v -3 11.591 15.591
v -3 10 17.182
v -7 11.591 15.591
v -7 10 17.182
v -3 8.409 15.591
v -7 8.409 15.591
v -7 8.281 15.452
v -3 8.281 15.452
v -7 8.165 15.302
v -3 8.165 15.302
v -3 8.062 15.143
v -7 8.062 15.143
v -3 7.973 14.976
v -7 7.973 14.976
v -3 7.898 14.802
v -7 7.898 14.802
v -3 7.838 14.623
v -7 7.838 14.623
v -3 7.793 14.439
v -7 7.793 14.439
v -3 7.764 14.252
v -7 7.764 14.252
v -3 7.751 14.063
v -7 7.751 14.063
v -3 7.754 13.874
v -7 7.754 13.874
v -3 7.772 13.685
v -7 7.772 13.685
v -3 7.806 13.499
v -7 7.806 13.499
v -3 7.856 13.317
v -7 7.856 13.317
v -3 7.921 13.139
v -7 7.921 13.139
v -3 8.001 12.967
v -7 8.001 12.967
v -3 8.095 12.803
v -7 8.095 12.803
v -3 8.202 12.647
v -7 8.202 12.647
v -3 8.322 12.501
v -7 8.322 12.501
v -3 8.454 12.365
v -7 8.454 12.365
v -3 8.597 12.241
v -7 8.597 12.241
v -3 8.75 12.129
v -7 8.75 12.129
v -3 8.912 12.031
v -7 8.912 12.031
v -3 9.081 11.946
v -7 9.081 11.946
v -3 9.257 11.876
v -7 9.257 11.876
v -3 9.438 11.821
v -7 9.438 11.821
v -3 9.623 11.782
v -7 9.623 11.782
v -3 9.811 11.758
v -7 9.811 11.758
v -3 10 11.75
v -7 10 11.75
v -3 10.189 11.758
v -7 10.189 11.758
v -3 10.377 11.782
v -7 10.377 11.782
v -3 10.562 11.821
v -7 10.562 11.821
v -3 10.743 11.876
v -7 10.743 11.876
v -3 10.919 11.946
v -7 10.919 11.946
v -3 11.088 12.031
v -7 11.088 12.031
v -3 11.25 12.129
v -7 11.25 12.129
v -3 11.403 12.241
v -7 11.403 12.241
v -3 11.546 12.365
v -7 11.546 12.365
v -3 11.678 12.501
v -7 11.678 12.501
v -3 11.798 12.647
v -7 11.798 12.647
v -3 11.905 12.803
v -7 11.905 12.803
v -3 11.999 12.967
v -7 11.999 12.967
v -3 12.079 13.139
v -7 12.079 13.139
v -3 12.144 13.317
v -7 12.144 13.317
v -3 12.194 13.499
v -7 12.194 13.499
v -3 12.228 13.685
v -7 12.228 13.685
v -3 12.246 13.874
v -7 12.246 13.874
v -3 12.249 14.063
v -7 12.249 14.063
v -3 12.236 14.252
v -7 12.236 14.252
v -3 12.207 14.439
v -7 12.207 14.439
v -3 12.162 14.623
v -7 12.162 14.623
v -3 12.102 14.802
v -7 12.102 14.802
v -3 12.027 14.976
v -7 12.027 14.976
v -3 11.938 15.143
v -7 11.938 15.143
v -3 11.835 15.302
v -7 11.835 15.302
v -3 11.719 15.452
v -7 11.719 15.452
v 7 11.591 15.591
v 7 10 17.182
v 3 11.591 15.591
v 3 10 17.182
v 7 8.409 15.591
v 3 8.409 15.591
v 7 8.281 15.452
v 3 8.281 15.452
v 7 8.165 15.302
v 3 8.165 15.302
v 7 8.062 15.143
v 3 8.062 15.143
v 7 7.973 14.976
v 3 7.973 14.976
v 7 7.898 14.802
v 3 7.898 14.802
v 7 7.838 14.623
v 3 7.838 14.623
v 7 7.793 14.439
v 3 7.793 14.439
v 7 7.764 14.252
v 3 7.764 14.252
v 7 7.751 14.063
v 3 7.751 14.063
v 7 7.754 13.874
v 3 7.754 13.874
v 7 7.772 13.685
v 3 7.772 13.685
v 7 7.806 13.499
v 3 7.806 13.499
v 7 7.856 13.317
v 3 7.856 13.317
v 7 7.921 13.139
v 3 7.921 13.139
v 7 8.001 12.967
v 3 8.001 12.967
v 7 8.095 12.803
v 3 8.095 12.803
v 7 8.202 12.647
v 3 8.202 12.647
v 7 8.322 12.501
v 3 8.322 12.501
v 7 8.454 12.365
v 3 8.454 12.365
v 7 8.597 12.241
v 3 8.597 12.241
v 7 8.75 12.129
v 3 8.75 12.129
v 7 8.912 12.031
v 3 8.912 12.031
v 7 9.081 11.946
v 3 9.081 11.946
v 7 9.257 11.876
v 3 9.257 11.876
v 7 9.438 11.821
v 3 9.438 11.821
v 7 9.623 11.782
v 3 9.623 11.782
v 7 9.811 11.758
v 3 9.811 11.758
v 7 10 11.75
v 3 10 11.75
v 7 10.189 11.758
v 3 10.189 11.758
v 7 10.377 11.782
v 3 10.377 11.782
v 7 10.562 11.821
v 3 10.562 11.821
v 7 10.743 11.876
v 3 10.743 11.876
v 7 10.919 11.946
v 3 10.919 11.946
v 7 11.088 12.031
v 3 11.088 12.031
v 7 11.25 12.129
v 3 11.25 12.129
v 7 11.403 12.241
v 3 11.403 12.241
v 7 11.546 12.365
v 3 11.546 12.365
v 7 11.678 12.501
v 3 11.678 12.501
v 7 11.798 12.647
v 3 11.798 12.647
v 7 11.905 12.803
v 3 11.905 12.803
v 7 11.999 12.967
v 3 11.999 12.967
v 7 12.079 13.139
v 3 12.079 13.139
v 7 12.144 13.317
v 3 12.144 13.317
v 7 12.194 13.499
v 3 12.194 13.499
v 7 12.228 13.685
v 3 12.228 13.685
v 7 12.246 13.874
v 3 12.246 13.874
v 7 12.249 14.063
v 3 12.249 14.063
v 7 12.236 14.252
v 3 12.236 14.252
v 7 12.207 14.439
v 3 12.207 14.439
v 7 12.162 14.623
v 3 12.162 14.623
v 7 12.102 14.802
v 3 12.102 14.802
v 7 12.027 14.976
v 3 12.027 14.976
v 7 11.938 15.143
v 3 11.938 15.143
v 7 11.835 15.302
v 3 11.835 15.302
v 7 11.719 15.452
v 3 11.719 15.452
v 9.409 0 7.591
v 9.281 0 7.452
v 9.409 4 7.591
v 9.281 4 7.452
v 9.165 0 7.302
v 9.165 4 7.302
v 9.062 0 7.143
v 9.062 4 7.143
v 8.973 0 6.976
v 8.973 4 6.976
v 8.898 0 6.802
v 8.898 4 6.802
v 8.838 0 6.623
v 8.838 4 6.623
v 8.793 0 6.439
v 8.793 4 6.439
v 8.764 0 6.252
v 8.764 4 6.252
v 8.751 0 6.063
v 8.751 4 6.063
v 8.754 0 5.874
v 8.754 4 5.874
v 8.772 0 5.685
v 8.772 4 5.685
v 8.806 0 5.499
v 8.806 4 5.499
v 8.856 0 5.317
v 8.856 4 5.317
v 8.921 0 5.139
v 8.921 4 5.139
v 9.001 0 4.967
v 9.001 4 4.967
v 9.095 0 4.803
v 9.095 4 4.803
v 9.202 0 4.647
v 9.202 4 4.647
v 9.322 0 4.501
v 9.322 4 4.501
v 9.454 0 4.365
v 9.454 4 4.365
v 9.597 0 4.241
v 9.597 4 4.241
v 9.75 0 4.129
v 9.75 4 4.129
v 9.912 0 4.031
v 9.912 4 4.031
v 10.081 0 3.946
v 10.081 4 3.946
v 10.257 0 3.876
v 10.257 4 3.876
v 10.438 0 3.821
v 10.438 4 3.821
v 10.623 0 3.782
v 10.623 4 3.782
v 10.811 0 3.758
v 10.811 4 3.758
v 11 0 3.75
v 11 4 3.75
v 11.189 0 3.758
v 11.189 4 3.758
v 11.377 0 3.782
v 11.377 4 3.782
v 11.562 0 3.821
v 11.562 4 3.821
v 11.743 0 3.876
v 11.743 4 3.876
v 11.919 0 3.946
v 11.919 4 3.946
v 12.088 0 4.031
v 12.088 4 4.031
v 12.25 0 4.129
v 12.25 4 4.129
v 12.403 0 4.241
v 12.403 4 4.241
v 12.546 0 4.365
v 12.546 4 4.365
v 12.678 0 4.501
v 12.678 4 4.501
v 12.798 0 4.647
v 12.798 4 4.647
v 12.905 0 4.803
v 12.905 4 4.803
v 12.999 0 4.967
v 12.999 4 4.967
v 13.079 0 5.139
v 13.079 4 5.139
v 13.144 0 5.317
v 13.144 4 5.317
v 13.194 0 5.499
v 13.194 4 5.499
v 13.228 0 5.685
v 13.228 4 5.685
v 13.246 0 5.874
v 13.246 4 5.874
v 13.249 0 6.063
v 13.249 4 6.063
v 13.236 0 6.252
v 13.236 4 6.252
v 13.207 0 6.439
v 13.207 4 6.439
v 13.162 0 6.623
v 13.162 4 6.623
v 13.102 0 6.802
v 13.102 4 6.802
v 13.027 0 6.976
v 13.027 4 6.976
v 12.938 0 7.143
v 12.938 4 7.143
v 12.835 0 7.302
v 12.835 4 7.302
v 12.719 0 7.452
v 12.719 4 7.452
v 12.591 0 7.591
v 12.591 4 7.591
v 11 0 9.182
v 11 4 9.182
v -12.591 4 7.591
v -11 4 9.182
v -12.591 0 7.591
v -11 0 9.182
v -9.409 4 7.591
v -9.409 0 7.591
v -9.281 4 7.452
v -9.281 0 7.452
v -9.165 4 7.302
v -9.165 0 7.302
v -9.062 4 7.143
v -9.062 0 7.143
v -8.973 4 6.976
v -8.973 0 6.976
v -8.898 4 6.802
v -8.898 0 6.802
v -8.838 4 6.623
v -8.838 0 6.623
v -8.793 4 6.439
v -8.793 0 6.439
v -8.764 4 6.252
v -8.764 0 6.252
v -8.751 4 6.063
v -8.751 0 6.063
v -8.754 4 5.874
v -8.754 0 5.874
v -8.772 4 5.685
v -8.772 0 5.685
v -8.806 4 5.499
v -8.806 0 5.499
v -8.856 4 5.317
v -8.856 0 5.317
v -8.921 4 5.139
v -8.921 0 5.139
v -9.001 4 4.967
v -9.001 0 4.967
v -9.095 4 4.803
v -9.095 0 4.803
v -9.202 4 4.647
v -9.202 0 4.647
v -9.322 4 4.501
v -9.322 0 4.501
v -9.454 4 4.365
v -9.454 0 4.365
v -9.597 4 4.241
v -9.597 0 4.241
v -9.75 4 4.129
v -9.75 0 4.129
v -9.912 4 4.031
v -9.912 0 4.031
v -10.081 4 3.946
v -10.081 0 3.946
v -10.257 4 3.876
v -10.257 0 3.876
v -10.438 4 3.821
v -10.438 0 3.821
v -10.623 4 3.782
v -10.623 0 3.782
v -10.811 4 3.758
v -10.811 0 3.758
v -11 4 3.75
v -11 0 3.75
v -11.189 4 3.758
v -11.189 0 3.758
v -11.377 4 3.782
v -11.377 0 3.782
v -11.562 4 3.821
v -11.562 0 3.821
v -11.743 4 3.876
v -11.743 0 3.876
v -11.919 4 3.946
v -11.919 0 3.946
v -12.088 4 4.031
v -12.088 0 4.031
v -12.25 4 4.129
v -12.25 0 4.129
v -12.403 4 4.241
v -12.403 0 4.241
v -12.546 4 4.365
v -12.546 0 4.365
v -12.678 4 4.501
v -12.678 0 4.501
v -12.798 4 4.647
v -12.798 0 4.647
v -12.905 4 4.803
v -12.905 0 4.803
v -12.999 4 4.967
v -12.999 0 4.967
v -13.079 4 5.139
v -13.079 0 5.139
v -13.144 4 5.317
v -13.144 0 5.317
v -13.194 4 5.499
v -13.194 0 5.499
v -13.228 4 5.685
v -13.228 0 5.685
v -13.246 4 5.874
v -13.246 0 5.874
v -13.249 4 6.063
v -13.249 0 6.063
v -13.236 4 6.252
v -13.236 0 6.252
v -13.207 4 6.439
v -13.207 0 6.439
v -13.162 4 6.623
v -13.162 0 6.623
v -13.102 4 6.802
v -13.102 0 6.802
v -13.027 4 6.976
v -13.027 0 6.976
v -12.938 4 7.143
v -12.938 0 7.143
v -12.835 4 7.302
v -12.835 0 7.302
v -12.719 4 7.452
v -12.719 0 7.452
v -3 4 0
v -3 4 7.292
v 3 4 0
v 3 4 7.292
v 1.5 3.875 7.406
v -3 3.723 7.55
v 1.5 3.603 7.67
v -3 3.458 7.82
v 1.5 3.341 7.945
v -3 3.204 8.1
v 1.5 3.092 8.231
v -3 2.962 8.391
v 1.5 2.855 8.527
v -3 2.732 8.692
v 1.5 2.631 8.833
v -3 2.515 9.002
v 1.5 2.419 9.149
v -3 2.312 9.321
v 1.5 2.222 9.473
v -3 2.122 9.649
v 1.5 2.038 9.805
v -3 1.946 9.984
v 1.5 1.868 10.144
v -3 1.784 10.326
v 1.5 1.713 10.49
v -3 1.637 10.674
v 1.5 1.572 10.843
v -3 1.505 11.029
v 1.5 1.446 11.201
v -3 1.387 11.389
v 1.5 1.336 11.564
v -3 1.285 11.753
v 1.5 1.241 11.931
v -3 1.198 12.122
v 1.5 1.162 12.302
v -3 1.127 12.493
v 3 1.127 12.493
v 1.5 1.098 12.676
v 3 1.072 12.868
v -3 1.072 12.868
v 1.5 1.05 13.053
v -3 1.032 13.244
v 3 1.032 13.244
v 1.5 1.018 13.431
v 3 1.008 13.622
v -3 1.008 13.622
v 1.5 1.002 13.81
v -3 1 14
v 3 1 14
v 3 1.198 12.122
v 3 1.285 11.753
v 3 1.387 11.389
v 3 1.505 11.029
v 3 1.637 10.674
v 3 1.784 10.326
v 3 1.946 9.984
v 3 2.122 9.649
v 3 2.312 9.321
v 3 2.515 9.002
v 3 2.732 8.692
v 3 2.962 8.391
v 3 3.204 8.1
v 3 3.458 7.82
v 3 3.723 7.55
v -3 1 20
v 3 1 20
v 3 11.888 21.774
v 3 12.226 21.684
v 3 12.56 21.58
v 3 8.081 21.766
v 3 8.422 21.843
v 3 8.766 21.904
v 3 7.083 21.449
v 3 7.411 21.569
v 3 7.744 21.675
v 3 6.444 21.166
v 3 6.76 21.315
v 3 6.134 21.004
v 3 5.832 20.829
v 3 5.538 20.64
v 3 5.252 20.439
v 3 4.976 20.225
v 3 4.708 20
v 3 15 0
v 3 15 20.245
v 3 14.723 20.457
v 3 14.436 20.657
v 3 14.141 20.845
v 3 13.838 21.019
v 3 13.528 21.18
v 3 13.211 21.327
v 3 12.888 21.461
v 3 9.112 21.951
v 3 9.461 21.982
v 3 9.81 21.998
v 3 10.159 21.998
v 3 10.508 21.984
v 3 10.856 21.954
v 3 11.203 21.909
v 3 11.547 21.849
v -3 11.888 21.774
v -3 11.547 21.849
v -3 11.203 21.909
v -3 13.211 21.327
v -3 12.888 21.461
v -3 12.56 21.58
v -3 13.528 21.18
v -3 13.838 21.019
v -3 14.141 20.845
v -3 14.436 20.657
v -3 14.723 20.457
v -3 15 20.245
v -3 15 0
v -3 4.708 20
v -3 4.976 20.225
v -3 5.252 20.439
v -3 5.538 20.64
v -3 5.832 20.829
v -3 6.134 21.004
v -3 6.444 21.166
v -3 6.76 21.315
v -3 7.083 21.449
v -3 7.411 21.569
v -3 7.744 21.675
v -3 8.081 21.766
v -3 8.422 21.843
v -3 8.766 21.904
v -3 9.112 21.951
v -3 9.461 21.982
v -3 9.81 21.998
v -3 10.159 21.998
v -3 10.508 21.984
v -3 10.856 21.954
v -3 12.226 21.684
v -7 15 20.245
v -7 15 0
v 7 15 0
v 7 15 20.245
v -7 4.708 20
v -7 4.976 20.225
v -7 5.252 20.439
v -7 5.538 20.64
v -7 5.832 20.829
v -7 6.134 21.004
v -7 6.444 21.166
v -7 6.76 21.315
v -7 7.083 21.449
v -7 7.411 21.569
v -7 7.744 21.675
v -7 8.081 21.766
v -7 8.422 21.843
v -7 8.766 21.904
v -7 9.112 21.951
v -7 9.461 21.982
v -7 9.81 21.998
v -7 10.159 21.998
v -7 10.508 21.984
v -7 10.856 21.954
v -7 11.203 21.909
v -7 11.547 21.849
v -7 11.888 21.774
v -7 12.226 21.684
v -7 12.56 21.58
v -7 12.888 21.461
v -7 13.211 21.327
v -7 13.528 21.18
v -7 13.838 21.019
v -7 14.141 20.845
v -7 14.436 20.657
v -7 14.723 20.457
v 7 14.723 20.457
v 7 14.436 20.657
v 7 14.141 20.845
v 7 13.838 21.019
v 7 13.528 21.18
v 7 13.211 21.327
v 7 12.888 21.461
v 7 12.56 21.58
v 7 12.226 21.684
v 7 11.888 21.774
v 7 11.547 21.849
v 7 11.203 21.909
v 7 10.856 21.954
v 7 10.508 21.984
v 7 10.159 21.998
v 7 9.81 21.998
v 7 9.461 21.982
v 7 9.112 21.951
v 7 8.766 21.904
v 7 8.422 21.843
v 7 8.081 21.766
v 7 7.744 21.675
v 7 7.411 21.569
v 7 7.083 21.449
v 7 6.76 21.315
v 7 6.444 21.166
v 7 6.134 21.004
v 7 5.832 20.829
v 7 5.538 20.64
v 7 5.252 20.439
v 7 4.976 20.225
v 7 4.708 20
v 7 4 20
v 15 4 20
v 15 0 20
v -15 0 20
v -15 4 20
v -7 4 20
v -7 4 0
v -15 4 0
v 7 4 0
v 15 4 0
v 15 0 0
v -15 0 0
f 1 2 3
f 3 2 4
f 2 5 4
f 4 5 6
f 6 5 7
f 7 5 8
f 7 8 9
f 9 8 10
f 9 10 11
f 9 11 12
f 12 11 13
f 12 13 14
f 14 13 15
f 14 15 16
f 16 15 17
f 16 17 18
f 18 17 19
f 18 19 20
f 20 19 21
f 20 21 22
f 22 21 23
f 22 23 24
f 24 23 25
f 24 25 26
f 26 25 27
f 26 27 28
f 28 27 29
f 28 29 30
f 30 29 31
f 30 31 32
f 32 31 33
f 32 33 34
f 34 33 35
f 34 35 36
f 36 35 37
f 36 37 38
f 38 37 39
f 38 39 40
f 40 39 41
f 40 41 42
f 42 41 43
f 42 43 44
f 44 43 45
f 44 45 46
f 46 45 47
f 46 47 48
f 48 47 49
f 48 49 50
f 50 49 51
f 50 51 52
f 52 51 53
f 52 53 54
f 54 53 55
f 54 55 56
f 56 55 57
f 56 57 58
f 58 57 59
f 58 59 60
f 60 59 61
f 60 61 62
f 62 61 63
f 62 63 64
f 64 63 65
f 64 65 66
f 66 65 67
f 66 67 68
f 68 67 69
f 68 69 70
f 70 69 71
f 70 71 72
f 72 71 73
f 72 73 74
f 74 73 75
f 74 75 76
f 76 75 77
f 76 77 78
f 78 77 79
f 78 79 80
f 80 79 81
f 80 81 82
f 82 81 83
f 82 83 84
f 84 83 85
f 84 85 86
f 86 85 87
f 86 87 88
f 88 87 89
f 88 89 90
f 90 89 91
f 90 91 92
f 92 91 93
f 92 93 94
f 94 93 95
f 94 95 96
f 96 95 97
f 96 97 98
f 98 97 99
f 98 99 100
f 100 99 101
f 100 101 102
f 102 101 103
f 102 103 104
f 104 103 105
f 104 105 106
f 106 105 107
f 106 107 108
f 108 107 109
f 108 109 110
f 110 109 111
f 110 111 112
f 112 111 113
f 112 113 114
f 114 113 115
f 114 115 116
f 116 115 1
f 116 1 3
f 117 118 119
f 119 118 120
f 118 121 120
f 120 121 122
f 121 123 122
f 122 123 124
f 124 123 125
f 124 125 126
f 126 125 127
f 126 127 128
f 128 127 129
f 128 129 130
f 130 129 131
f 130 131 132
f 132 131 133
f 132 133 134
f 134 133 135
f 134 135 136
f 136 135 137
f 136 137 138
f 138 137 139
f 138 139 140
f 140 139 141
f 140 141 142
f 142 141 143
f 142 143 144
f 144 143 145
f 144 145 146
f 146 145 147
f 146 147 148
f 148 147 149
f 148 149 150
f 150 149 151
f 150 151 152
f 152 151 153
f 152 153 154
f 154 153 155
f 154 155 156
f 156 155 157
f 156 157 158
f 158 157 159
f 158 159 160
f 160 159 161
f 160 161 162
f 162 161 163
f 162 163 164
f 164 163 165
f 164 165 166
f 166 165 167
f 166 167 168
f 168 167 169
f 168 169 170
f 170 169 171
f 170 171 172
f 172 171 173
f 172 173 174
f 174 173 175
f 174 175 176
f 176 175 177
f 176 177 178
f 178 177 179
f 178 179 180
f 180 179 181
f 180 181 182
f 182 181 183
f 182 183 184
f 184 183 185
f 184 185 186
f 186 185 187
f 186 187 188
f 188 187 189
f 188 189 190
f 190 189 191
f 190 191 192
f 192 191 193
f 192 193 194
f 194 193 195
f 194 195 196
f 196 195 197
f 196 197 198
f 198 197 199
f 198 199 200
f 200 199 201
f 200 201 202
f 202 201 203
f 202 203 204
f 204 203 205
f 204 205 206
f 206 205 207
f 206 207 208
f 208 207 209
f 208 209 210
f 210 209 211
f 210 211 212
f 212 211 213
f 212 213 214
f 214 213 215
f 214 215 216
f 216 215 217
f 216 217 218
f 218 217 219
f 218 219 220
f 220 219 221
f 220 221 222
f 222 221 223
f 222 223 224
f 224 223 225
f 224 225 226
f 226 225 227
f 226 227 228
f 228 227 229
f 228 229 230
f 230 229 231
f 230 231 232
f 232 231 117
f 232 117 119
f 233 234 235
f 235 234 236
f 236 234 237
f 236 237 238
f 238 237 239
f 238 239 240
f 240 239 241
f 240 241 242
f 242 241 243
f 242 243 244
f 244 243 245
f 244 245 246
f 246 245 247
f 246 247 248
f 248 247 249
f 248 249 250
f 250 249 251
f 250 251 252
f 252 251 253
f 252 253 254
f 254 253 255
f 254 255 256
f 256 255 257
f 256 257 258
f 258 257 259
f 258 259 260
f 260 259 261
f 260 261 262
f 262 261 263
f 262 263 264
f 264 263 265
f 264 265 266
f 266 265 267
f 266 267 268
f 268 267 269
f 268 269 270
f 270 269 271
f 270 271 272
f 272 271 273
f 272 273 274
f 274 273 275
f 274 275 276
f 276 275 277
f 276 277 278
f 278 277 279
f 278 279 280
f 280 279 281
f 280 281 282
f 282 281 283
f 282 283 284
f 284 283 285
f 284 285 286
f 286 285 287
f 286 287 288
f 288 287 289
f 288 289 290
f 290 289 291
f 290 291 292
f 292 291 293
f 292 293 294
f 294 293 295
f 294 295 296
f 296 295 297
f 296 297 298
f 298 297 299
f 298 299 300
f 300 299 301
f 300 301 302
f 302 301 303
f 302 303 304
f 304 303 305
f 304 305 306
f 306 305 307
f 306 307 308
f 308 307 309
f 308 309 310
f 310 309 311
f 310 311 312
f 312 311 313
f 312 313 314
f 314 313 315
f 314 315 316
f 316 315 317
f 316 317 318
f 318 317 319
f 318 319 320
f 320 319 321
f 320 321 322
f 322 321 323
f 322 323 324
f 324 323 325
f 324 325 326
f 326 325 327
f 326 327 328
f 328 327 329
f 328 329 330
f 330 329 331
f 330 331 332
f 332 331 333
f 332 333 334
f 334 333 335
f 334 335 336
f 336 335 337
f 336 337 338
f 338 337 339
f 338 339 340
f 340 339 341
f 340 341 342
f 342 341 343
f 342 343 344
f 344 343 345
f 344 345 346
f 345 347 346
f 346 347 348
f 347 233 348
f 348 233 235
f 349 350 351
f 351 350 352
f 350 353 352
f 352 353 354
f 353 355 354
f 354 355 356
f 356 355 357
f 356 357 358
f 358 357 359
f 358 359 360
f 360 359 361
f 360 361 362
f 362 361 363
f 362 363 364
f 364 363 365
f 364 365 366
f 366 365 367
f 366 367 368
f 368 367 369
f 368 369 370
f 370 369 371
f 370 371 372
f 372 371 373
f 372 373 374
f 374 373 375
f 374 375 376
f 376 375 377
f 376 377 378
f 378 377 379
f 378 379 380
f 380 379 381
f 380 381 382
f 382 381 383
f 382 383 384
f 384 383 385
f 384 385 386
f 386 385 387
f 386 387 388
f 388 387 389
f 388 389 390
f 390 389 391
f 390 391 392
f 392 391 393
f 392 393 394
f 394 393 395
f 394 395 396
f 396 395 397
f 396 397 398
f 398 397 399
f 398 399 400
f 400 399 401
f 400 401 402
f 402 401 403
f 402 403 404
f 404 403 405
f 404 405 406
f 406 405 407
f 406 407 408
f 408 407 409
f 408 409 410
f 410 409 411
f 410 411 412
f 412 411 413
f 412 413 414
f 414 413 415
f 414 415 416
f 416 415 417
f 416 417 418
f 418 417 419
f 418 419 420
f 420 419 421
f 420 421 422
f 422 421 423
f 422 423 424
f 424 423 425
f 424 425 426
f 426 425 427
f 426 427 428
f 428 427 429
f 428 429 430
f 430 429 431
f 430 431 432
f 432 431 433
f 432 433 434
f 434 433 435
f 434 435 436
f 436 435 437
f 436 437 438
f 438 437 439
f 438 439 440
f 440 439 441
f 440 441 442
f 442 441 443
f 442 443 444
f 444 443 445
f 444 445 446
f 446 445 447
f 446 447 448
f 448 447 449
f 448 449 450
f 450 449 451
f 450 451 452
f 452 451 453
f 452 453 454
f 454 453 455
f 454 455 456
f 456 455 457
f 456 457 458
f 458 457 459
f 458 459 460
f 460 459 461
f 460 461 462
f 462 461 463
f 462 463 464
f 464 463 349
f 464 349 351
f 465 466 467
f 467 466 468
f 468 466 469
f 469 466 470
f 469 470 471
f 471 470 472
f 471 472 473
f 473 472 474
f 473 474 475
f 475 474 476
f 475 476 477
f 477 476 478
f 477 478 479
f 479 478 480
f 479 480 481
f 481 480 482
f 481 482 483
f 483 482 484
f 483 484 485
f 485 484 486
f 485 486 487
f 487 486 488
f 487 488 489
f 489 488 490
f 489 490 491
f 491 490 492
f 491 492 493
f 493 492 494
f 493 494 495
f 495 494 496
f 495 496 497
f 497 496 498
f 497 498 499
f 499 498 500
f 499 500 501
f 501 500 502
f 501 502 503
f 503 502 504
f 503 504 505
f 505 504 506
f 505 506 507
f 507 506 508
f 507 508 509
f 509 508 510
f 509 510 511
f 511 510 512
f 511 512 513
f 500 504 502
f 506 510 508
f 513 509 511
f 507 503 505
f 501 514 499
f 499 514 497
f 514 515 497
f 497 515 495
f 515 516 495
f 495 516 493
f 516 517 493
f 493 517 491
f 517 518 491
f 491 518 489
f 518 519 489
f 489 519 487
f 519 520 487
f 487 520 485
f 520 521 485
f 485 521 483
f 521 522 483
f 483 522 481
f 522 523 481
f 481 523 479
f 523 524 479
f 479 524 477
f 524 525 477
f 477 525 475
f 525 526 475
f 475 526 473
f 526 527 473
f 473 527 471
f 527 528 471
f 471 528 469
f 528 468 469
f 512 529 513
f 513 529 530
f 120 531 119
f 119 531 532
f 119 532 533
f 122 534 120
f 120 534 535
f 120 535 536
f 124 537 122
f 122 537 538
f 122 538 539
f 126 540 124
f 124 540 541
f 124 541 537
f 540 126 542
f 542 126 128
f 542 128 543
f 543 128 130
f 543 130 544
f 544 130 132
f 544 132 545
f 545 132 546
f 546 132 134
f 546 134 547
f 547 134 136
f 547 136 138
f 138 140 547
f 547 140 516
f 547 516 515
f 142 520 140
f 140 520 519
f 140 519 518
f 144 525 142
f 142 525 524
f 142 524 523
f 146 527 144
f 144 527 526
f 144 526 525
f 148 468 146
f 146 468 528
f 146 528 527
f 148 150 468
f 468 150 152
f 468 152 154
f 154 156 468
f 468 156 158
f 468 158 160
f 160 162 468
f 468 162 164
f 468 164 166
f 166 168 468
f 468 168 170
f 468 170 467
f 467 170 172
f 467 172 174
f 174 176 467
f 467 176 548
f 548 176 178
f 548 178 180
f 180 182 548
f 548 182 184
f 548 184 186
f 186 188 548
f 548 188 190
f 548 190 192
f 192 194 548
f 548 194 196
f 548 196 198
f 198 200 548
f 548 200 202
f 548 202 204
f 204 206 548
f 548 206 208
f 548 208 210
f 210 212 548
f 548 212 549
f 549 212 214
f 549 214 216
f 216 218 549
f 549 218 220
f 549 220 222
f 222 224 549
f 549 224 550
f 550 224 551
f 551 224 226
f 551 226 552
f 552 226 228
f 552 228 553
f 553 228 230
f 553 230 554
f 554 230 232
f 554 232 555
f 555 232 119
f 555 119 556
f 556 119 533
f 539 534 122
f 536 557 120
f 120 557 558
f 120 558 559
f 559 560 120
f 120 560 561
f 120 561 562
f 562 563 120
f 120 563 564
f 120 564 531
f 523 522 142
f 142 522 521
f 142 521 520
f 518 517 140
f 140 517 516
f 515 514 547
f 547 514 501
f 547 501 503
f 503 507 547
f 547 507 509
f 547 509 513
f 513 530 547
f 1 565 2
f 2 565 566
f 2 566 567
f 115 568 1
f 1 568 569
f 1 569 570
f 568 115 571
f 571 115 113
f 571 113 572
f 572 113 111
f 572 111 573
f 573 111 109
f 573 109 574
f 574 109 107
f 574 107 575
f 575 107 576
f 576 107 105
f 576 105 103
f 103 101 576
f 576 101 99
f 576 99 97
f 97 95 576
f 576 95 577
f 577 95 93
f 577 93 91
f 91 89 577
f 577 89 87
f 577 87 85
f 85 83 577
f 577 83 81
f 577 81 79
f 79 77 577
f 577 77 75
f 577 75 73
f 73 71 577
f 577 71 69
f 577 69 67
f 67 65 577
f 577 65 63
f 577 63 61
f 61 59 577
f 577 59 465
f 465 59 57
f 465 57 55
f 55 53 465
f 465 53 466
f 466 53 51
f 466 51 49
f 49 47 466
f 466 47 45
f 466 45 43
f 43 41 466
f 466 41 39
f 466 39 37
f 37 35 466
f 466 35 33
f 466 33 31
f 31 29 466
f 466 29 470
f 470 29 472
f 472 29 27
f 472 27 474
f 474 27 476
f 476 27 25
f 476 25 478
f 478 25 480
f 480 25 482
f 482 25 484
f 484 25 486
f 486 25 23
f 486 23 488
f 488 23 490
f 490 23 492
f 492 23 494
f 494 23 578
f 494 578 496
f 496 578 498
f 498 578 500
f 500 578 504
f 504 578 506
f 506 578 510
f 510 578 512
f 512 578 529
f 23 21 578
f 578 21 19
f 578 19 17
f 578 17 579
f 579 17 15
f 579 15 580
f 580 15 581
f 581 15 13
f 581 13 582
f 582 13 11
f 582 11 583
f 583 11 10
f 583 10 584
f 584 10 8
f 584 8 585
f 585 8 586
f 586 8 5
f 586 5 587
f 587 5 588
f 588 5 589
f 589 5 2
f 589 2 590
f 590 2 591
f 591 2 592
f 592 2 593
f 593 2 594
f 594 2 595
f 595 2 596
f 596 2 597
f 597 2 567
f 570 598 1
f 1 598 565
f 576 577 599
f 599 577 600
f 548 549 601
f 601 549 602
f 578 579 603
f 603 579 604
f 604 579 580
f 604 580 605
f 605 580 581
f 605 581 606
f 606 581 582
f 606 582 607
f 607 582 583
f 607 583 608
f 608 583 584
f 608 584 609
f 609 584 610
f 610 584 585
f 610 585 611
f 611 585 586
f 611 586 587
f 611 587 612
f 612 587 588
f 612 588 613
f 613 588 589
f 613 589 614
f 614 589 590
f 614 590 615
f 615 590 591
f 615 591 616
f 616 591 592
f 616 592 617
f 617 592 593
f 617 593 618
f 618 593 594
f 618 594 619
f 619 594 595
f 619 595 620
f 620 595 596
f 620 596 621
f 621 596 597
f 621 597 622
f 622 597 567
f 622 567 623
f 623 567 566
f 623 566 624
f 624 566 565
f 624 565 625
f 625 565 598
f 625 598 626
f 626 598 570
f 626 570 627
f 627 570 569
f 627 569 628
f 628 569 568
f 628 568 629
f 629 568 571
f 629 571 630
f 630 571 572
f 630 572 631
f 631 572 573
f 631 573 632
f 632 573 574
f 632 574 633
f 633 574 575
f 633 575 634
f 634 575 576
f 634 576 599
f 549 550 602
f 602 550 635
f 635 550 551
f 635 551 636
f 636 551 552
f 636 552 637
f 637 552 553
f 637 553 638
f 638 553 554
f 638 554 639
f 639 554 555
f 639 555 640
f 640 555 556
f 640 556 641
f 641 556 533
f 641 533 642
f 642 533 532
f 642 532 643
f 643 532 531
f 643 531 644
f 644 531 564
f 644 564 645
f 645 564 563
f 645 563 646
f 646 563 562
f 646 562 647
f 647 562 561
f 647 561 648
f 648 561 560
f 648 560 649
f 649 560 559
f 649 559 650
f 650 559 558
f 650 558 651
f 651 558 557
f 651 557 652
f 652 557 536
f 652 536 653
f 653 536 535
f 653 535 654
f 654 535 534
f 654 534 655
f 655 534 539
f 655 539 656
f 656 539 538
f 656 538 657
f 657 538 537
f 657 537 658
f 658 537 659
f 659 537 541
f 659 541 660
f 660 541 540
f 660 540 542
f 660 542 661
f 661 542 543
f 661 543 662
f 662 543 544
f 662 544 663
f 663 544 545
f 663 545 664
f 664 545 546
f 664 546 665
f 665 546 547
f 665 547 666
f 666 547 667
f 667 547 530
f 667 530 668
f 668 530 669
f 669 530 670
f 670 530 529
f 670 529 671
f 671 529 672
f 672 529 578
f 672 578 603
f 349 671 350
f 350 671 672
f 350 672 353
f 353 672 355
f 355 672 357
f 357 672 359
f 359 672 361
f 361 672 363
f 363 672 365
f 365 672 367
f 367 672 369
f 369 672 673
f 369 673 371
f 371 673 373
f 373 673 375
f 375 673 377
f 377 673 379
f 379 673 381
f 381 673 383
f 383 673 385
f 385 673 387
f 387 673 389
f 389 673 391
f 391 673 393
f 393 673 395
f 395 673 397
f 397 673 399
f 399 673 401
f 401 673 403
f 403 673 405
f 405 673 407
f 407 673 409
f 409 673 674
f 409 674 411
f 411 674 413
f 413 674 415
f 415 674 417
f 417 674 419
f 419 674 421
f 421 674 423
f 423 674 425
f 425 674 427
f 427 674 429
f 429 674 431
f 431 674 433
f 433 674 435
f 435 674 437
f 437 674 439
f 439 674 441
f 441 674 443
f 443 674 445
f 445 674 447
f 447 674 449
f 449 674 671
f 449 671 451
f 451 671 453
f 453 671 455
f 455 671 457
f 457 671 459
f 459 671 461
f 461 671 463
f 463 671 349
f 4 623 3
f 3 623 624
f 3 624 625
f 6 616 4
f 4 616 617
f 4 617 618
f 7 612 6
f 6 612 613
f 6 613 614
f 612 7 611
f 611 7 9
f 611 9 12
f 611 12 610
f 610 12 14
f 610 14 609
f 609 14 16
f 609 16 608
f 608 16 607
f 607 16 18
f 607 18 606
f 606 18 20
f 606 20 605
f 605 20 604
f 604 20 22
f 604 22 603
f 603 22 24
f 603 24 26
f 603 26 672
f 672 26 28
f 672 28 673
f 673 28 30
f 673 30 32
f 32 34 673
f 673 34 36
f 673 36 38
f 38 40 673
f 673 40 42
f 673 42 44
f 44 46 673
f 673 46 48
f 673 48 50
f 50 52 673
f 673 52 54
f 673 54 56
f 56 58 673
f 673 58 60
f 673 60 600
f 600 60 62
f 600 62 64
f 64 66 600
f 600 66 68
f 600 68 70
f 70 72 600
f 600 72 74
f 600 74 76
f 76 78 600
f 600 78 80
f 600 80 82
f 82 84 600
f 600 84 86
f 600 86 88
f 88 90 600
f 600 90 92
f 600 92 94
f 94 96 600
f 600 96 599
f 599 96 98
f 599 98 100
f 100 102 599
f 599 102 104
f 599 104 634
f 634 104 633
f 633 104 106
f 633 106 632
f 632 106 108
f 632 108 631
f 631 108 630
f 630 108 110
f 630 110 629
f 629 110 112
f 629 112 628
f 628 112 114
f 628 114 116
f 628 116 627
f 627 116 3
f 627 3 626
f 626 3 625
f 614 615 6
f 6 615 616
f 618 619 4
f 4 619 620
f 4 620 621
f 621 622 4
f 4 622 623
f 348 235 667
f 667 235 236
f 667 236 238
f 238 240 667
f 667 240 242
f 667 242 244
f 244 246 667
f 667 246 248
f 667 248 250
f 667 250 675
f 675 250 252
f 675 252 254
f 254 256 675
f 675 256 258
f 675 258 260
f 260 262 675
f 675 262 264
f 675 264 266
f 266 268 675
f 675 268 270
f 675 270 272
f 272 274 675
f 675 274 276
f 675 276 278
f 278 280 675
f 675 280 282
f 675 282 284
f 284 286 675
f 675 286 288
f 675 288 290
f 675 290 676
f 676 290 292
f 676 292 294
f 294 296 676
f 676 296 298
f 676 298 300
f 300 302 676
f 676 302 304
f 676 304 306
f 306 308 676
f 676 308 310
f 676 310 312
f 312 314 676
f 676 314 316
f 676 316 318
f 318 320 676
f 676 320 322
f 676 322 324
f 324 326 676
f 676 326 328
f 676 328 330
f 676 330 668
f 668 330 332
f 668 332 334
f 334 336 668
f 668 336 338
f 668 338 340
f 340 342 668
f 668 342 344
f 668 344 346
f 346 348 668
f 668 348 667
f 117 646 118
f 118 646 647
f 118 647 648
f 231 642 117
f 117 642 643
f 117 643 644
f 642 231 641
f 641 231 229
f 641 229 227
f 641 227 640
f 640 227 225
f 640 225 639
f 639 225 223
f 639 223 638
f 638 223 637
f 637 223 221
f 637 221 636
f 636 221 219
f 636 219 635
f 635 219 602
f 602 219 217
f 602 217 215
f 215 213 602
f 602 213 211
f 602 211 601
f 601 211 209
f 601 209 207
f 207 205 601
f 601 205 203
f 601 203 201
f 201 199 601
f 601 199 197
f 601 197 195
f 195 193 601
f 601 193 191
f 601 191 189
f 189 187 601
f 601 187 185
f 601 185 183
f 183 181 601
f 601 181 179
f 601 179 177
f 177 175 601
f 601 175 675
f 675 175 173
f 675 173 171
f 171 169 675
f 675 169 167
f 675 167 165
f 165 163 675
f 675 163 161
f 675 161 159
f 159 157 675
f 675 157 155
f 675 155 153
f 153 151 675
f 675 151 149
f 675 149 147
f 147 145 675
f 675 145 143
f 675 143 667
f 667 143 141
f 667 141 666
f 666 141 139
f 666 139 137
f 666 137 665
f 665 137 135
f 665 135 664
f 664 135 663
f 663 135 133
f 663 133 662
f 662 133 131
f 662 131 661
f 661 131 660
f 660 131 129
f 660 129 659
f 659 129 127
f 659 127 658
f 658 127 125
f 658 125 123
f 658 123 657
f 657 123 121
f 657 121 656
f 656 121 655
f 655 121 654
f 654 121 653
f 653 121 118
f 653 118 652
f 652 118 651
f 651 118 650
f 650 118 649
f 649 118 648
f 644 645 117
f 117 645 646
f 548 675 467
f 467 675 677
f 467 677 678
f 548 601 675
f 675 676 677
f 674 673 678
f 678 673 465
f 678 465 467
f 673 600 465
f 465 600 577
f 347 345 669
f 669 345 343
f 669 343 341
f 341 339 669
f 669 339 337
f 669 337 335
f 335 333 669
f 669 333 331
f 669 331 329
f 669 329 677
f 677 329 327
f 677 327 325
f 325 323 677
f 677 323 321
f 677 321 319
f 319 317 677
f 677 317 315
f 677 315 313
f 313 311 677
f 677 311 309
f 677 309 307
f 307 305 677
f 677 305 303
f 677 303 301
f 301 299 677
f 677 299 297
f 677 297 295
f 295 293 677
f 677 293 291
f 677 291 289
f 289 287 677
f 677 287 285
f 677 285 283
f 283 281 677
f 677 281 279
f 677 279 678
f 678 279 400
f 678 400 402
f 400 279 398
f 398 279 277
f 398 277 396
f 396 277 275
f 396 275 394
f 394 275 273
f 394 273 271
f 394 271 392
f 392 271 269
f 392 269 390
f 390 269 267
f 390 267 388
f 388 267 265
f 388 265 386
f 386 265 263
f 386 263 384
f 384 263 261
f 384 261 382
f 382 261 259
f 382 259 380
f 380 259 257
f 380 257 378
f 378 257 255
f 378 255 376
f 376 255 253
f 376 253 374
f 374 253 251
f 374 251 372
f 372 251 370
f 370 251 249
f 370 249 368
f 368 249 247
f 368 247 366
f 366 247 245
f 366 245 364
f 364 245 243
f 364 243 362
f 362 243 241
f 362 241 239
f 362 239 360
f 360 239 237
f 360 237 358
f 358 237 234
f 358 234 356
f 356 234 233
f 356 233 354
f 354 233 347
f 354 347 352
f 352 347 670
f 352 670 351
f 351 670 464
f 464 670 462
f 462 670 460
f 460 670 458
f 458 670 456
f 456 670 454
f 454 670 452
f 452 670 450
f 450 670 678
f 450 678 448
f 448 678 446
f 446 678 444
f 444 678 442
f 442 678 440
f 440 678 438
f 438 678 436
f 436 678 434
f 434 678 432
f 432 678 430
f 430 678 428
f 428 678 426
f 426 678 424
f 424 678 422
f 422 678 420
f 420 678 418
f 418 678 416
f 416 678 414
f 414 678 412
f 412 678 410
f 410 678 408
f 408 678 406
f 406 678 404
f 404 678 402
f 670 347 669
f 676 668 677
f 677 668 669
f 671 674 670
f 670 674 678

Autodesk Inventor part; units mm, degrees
ref_plane "XZ Plane" through (0, 0, 0) normal (0, 1, 0) x (-1, 0, 0)
ref_plane "Work Plane1" through (-15, 0, 0) normal (1, 0, 0) x (0, 1, 0)
sketch "Sketch1" plane through (-15, 0, 0) normal (1, 0, 0) x (0, 1, 0)
  line L0 (0, 20) -> (0, 0)
  arc A0 (15, 20.245) -> (4.7085, 20) centre (10, 14) ccw
  line L1 (15, 0) -> (15, 20.245)
  line L2 (15, 0) -> (0, 0)
  line L3 (4.7085, 20) -> (0, 20)
extrude "Extrusion8" add sketch "Sketch1" along normal blind 30
sketch "Sketch2" plane through (15, 0, 0) normal (1, 0, 0) x (0, 0, -1)
  line L0 (-20.245, 15) -> (0, 15)
  line L1 (-20, 4) -> (-20, 4.7085)
  line L2 (0, 4) -> (0, 15)
  arc A0 (-20.245, 15) -> (-20, 4.7085) centre (-14, 10) ccw
  line L3 (-20, 4) -> (0, 4)
extrude "Extrusion7" cut sketch "Sketch2" against normal blind 8
sketch "Sketch3" plane through (-15, 0, 0) normal (1, 0, 0) x (0, 1, 0)
  line L0 (4.7085, 20) -> (4, 20)
  line L1 (15, 20.245) -> (15, 0)
  line L2 (4, 20) -> (4, 0)
  arc A0 (15, 20.245) -> (4.7085, 20) centre (10, 14) ccw
  line L3 (15, 0) -> (4, 0)
extrude "Extrusion6" cut sketch "Sketch3" along normal blind 8
ref_plane "Work Plane2" through (-3, 0, 0) normal (1, 0, 0) x (0, 1, 0)
sketch "Sketch4" plane through (-3, 0, 0) normal (1, 0, 0) x (0, 1, 0)
  arc A0 (15, 20.245) -> (4.7085, 20) centre (10, 14) ccw
  arc A1 (1, 14) -> (4, 7.2918) centre (10, 14) ccw
  line L0 (15, 20.245) -> (15, 0)
  line L1 (4.7085, 20) -> (1, 20)
  line L2 (4, 7.2918) -> (4, 0)
  line L3 (1, 20) -> (1, 14)
  line L4 (15, 0) -> (4, 0)
extrude "Extrusion5" cut sketch "Sketch4" along normal blind 6
sketch "Sketch5" plane through (-3, 4, 7.2918) normal (0, 1, 0) x (1, 0, 0)
  arc A0 (-6.409, -0.2992) -> (-9.591, -0.2992) centre (-8, 1.2918) ccw
  line L0 (-8, -1.8902) -> (-6.409, -0.2992)
  line L1 (-9.591, -0.2992) -> (-8, -1.8902)
extrude "Extrusion4" cut sketch "Sketch5" against normal blind 4
sketch "Sketch6" plane through (0, 0, 0) normal (0, 1, 0) x (-1, 0, 0)
  line L0 (-9.409, 7.591) -> (-11, 9.182)
  arc A0 (-12.591, 7.591) -> (-9.409, 7.591) centre (-11, 6) ccw
  line L1 (-11, 9.182) -> (-12.591, 7.591)
extrude "Extrusion3" cut sketch "Sketch6" along normal blind 4
sketch "Sketch7" plane through (7, 0, 0) normal (1, 0, 0) x (0, 0, -1)
  arc A0 (-15.591, 8.409) -> (-15.591, 11.591) centre (-14, 10) ccw
  line L0 (-17.182, 10) -> (-15.591, 8.409)
  line L1 (-15.591, 11.591) -> (-17.182, 10)
extrude "Extrusion2" cut sketch "Sketch7" against normal blind 4
sketch "Sketch8" plane through (-3, 0, 0) normal (1, 0, 0) x (0, 1, 0)
  arc A0 (8.409, 15.591) -> (11.591, 15.591) centre (10, 14) ccw
  line L0 (8.409, 15.591) -> (10, 17.182)
  line L1 (10, 17.182) -> (11.591, 15.591)
extrude "Extrusion1" cut sketch "Sketch8" against normal blind 4 draft 0
properties part number "Y-axis Belt Return" material "ASA Plastic"
